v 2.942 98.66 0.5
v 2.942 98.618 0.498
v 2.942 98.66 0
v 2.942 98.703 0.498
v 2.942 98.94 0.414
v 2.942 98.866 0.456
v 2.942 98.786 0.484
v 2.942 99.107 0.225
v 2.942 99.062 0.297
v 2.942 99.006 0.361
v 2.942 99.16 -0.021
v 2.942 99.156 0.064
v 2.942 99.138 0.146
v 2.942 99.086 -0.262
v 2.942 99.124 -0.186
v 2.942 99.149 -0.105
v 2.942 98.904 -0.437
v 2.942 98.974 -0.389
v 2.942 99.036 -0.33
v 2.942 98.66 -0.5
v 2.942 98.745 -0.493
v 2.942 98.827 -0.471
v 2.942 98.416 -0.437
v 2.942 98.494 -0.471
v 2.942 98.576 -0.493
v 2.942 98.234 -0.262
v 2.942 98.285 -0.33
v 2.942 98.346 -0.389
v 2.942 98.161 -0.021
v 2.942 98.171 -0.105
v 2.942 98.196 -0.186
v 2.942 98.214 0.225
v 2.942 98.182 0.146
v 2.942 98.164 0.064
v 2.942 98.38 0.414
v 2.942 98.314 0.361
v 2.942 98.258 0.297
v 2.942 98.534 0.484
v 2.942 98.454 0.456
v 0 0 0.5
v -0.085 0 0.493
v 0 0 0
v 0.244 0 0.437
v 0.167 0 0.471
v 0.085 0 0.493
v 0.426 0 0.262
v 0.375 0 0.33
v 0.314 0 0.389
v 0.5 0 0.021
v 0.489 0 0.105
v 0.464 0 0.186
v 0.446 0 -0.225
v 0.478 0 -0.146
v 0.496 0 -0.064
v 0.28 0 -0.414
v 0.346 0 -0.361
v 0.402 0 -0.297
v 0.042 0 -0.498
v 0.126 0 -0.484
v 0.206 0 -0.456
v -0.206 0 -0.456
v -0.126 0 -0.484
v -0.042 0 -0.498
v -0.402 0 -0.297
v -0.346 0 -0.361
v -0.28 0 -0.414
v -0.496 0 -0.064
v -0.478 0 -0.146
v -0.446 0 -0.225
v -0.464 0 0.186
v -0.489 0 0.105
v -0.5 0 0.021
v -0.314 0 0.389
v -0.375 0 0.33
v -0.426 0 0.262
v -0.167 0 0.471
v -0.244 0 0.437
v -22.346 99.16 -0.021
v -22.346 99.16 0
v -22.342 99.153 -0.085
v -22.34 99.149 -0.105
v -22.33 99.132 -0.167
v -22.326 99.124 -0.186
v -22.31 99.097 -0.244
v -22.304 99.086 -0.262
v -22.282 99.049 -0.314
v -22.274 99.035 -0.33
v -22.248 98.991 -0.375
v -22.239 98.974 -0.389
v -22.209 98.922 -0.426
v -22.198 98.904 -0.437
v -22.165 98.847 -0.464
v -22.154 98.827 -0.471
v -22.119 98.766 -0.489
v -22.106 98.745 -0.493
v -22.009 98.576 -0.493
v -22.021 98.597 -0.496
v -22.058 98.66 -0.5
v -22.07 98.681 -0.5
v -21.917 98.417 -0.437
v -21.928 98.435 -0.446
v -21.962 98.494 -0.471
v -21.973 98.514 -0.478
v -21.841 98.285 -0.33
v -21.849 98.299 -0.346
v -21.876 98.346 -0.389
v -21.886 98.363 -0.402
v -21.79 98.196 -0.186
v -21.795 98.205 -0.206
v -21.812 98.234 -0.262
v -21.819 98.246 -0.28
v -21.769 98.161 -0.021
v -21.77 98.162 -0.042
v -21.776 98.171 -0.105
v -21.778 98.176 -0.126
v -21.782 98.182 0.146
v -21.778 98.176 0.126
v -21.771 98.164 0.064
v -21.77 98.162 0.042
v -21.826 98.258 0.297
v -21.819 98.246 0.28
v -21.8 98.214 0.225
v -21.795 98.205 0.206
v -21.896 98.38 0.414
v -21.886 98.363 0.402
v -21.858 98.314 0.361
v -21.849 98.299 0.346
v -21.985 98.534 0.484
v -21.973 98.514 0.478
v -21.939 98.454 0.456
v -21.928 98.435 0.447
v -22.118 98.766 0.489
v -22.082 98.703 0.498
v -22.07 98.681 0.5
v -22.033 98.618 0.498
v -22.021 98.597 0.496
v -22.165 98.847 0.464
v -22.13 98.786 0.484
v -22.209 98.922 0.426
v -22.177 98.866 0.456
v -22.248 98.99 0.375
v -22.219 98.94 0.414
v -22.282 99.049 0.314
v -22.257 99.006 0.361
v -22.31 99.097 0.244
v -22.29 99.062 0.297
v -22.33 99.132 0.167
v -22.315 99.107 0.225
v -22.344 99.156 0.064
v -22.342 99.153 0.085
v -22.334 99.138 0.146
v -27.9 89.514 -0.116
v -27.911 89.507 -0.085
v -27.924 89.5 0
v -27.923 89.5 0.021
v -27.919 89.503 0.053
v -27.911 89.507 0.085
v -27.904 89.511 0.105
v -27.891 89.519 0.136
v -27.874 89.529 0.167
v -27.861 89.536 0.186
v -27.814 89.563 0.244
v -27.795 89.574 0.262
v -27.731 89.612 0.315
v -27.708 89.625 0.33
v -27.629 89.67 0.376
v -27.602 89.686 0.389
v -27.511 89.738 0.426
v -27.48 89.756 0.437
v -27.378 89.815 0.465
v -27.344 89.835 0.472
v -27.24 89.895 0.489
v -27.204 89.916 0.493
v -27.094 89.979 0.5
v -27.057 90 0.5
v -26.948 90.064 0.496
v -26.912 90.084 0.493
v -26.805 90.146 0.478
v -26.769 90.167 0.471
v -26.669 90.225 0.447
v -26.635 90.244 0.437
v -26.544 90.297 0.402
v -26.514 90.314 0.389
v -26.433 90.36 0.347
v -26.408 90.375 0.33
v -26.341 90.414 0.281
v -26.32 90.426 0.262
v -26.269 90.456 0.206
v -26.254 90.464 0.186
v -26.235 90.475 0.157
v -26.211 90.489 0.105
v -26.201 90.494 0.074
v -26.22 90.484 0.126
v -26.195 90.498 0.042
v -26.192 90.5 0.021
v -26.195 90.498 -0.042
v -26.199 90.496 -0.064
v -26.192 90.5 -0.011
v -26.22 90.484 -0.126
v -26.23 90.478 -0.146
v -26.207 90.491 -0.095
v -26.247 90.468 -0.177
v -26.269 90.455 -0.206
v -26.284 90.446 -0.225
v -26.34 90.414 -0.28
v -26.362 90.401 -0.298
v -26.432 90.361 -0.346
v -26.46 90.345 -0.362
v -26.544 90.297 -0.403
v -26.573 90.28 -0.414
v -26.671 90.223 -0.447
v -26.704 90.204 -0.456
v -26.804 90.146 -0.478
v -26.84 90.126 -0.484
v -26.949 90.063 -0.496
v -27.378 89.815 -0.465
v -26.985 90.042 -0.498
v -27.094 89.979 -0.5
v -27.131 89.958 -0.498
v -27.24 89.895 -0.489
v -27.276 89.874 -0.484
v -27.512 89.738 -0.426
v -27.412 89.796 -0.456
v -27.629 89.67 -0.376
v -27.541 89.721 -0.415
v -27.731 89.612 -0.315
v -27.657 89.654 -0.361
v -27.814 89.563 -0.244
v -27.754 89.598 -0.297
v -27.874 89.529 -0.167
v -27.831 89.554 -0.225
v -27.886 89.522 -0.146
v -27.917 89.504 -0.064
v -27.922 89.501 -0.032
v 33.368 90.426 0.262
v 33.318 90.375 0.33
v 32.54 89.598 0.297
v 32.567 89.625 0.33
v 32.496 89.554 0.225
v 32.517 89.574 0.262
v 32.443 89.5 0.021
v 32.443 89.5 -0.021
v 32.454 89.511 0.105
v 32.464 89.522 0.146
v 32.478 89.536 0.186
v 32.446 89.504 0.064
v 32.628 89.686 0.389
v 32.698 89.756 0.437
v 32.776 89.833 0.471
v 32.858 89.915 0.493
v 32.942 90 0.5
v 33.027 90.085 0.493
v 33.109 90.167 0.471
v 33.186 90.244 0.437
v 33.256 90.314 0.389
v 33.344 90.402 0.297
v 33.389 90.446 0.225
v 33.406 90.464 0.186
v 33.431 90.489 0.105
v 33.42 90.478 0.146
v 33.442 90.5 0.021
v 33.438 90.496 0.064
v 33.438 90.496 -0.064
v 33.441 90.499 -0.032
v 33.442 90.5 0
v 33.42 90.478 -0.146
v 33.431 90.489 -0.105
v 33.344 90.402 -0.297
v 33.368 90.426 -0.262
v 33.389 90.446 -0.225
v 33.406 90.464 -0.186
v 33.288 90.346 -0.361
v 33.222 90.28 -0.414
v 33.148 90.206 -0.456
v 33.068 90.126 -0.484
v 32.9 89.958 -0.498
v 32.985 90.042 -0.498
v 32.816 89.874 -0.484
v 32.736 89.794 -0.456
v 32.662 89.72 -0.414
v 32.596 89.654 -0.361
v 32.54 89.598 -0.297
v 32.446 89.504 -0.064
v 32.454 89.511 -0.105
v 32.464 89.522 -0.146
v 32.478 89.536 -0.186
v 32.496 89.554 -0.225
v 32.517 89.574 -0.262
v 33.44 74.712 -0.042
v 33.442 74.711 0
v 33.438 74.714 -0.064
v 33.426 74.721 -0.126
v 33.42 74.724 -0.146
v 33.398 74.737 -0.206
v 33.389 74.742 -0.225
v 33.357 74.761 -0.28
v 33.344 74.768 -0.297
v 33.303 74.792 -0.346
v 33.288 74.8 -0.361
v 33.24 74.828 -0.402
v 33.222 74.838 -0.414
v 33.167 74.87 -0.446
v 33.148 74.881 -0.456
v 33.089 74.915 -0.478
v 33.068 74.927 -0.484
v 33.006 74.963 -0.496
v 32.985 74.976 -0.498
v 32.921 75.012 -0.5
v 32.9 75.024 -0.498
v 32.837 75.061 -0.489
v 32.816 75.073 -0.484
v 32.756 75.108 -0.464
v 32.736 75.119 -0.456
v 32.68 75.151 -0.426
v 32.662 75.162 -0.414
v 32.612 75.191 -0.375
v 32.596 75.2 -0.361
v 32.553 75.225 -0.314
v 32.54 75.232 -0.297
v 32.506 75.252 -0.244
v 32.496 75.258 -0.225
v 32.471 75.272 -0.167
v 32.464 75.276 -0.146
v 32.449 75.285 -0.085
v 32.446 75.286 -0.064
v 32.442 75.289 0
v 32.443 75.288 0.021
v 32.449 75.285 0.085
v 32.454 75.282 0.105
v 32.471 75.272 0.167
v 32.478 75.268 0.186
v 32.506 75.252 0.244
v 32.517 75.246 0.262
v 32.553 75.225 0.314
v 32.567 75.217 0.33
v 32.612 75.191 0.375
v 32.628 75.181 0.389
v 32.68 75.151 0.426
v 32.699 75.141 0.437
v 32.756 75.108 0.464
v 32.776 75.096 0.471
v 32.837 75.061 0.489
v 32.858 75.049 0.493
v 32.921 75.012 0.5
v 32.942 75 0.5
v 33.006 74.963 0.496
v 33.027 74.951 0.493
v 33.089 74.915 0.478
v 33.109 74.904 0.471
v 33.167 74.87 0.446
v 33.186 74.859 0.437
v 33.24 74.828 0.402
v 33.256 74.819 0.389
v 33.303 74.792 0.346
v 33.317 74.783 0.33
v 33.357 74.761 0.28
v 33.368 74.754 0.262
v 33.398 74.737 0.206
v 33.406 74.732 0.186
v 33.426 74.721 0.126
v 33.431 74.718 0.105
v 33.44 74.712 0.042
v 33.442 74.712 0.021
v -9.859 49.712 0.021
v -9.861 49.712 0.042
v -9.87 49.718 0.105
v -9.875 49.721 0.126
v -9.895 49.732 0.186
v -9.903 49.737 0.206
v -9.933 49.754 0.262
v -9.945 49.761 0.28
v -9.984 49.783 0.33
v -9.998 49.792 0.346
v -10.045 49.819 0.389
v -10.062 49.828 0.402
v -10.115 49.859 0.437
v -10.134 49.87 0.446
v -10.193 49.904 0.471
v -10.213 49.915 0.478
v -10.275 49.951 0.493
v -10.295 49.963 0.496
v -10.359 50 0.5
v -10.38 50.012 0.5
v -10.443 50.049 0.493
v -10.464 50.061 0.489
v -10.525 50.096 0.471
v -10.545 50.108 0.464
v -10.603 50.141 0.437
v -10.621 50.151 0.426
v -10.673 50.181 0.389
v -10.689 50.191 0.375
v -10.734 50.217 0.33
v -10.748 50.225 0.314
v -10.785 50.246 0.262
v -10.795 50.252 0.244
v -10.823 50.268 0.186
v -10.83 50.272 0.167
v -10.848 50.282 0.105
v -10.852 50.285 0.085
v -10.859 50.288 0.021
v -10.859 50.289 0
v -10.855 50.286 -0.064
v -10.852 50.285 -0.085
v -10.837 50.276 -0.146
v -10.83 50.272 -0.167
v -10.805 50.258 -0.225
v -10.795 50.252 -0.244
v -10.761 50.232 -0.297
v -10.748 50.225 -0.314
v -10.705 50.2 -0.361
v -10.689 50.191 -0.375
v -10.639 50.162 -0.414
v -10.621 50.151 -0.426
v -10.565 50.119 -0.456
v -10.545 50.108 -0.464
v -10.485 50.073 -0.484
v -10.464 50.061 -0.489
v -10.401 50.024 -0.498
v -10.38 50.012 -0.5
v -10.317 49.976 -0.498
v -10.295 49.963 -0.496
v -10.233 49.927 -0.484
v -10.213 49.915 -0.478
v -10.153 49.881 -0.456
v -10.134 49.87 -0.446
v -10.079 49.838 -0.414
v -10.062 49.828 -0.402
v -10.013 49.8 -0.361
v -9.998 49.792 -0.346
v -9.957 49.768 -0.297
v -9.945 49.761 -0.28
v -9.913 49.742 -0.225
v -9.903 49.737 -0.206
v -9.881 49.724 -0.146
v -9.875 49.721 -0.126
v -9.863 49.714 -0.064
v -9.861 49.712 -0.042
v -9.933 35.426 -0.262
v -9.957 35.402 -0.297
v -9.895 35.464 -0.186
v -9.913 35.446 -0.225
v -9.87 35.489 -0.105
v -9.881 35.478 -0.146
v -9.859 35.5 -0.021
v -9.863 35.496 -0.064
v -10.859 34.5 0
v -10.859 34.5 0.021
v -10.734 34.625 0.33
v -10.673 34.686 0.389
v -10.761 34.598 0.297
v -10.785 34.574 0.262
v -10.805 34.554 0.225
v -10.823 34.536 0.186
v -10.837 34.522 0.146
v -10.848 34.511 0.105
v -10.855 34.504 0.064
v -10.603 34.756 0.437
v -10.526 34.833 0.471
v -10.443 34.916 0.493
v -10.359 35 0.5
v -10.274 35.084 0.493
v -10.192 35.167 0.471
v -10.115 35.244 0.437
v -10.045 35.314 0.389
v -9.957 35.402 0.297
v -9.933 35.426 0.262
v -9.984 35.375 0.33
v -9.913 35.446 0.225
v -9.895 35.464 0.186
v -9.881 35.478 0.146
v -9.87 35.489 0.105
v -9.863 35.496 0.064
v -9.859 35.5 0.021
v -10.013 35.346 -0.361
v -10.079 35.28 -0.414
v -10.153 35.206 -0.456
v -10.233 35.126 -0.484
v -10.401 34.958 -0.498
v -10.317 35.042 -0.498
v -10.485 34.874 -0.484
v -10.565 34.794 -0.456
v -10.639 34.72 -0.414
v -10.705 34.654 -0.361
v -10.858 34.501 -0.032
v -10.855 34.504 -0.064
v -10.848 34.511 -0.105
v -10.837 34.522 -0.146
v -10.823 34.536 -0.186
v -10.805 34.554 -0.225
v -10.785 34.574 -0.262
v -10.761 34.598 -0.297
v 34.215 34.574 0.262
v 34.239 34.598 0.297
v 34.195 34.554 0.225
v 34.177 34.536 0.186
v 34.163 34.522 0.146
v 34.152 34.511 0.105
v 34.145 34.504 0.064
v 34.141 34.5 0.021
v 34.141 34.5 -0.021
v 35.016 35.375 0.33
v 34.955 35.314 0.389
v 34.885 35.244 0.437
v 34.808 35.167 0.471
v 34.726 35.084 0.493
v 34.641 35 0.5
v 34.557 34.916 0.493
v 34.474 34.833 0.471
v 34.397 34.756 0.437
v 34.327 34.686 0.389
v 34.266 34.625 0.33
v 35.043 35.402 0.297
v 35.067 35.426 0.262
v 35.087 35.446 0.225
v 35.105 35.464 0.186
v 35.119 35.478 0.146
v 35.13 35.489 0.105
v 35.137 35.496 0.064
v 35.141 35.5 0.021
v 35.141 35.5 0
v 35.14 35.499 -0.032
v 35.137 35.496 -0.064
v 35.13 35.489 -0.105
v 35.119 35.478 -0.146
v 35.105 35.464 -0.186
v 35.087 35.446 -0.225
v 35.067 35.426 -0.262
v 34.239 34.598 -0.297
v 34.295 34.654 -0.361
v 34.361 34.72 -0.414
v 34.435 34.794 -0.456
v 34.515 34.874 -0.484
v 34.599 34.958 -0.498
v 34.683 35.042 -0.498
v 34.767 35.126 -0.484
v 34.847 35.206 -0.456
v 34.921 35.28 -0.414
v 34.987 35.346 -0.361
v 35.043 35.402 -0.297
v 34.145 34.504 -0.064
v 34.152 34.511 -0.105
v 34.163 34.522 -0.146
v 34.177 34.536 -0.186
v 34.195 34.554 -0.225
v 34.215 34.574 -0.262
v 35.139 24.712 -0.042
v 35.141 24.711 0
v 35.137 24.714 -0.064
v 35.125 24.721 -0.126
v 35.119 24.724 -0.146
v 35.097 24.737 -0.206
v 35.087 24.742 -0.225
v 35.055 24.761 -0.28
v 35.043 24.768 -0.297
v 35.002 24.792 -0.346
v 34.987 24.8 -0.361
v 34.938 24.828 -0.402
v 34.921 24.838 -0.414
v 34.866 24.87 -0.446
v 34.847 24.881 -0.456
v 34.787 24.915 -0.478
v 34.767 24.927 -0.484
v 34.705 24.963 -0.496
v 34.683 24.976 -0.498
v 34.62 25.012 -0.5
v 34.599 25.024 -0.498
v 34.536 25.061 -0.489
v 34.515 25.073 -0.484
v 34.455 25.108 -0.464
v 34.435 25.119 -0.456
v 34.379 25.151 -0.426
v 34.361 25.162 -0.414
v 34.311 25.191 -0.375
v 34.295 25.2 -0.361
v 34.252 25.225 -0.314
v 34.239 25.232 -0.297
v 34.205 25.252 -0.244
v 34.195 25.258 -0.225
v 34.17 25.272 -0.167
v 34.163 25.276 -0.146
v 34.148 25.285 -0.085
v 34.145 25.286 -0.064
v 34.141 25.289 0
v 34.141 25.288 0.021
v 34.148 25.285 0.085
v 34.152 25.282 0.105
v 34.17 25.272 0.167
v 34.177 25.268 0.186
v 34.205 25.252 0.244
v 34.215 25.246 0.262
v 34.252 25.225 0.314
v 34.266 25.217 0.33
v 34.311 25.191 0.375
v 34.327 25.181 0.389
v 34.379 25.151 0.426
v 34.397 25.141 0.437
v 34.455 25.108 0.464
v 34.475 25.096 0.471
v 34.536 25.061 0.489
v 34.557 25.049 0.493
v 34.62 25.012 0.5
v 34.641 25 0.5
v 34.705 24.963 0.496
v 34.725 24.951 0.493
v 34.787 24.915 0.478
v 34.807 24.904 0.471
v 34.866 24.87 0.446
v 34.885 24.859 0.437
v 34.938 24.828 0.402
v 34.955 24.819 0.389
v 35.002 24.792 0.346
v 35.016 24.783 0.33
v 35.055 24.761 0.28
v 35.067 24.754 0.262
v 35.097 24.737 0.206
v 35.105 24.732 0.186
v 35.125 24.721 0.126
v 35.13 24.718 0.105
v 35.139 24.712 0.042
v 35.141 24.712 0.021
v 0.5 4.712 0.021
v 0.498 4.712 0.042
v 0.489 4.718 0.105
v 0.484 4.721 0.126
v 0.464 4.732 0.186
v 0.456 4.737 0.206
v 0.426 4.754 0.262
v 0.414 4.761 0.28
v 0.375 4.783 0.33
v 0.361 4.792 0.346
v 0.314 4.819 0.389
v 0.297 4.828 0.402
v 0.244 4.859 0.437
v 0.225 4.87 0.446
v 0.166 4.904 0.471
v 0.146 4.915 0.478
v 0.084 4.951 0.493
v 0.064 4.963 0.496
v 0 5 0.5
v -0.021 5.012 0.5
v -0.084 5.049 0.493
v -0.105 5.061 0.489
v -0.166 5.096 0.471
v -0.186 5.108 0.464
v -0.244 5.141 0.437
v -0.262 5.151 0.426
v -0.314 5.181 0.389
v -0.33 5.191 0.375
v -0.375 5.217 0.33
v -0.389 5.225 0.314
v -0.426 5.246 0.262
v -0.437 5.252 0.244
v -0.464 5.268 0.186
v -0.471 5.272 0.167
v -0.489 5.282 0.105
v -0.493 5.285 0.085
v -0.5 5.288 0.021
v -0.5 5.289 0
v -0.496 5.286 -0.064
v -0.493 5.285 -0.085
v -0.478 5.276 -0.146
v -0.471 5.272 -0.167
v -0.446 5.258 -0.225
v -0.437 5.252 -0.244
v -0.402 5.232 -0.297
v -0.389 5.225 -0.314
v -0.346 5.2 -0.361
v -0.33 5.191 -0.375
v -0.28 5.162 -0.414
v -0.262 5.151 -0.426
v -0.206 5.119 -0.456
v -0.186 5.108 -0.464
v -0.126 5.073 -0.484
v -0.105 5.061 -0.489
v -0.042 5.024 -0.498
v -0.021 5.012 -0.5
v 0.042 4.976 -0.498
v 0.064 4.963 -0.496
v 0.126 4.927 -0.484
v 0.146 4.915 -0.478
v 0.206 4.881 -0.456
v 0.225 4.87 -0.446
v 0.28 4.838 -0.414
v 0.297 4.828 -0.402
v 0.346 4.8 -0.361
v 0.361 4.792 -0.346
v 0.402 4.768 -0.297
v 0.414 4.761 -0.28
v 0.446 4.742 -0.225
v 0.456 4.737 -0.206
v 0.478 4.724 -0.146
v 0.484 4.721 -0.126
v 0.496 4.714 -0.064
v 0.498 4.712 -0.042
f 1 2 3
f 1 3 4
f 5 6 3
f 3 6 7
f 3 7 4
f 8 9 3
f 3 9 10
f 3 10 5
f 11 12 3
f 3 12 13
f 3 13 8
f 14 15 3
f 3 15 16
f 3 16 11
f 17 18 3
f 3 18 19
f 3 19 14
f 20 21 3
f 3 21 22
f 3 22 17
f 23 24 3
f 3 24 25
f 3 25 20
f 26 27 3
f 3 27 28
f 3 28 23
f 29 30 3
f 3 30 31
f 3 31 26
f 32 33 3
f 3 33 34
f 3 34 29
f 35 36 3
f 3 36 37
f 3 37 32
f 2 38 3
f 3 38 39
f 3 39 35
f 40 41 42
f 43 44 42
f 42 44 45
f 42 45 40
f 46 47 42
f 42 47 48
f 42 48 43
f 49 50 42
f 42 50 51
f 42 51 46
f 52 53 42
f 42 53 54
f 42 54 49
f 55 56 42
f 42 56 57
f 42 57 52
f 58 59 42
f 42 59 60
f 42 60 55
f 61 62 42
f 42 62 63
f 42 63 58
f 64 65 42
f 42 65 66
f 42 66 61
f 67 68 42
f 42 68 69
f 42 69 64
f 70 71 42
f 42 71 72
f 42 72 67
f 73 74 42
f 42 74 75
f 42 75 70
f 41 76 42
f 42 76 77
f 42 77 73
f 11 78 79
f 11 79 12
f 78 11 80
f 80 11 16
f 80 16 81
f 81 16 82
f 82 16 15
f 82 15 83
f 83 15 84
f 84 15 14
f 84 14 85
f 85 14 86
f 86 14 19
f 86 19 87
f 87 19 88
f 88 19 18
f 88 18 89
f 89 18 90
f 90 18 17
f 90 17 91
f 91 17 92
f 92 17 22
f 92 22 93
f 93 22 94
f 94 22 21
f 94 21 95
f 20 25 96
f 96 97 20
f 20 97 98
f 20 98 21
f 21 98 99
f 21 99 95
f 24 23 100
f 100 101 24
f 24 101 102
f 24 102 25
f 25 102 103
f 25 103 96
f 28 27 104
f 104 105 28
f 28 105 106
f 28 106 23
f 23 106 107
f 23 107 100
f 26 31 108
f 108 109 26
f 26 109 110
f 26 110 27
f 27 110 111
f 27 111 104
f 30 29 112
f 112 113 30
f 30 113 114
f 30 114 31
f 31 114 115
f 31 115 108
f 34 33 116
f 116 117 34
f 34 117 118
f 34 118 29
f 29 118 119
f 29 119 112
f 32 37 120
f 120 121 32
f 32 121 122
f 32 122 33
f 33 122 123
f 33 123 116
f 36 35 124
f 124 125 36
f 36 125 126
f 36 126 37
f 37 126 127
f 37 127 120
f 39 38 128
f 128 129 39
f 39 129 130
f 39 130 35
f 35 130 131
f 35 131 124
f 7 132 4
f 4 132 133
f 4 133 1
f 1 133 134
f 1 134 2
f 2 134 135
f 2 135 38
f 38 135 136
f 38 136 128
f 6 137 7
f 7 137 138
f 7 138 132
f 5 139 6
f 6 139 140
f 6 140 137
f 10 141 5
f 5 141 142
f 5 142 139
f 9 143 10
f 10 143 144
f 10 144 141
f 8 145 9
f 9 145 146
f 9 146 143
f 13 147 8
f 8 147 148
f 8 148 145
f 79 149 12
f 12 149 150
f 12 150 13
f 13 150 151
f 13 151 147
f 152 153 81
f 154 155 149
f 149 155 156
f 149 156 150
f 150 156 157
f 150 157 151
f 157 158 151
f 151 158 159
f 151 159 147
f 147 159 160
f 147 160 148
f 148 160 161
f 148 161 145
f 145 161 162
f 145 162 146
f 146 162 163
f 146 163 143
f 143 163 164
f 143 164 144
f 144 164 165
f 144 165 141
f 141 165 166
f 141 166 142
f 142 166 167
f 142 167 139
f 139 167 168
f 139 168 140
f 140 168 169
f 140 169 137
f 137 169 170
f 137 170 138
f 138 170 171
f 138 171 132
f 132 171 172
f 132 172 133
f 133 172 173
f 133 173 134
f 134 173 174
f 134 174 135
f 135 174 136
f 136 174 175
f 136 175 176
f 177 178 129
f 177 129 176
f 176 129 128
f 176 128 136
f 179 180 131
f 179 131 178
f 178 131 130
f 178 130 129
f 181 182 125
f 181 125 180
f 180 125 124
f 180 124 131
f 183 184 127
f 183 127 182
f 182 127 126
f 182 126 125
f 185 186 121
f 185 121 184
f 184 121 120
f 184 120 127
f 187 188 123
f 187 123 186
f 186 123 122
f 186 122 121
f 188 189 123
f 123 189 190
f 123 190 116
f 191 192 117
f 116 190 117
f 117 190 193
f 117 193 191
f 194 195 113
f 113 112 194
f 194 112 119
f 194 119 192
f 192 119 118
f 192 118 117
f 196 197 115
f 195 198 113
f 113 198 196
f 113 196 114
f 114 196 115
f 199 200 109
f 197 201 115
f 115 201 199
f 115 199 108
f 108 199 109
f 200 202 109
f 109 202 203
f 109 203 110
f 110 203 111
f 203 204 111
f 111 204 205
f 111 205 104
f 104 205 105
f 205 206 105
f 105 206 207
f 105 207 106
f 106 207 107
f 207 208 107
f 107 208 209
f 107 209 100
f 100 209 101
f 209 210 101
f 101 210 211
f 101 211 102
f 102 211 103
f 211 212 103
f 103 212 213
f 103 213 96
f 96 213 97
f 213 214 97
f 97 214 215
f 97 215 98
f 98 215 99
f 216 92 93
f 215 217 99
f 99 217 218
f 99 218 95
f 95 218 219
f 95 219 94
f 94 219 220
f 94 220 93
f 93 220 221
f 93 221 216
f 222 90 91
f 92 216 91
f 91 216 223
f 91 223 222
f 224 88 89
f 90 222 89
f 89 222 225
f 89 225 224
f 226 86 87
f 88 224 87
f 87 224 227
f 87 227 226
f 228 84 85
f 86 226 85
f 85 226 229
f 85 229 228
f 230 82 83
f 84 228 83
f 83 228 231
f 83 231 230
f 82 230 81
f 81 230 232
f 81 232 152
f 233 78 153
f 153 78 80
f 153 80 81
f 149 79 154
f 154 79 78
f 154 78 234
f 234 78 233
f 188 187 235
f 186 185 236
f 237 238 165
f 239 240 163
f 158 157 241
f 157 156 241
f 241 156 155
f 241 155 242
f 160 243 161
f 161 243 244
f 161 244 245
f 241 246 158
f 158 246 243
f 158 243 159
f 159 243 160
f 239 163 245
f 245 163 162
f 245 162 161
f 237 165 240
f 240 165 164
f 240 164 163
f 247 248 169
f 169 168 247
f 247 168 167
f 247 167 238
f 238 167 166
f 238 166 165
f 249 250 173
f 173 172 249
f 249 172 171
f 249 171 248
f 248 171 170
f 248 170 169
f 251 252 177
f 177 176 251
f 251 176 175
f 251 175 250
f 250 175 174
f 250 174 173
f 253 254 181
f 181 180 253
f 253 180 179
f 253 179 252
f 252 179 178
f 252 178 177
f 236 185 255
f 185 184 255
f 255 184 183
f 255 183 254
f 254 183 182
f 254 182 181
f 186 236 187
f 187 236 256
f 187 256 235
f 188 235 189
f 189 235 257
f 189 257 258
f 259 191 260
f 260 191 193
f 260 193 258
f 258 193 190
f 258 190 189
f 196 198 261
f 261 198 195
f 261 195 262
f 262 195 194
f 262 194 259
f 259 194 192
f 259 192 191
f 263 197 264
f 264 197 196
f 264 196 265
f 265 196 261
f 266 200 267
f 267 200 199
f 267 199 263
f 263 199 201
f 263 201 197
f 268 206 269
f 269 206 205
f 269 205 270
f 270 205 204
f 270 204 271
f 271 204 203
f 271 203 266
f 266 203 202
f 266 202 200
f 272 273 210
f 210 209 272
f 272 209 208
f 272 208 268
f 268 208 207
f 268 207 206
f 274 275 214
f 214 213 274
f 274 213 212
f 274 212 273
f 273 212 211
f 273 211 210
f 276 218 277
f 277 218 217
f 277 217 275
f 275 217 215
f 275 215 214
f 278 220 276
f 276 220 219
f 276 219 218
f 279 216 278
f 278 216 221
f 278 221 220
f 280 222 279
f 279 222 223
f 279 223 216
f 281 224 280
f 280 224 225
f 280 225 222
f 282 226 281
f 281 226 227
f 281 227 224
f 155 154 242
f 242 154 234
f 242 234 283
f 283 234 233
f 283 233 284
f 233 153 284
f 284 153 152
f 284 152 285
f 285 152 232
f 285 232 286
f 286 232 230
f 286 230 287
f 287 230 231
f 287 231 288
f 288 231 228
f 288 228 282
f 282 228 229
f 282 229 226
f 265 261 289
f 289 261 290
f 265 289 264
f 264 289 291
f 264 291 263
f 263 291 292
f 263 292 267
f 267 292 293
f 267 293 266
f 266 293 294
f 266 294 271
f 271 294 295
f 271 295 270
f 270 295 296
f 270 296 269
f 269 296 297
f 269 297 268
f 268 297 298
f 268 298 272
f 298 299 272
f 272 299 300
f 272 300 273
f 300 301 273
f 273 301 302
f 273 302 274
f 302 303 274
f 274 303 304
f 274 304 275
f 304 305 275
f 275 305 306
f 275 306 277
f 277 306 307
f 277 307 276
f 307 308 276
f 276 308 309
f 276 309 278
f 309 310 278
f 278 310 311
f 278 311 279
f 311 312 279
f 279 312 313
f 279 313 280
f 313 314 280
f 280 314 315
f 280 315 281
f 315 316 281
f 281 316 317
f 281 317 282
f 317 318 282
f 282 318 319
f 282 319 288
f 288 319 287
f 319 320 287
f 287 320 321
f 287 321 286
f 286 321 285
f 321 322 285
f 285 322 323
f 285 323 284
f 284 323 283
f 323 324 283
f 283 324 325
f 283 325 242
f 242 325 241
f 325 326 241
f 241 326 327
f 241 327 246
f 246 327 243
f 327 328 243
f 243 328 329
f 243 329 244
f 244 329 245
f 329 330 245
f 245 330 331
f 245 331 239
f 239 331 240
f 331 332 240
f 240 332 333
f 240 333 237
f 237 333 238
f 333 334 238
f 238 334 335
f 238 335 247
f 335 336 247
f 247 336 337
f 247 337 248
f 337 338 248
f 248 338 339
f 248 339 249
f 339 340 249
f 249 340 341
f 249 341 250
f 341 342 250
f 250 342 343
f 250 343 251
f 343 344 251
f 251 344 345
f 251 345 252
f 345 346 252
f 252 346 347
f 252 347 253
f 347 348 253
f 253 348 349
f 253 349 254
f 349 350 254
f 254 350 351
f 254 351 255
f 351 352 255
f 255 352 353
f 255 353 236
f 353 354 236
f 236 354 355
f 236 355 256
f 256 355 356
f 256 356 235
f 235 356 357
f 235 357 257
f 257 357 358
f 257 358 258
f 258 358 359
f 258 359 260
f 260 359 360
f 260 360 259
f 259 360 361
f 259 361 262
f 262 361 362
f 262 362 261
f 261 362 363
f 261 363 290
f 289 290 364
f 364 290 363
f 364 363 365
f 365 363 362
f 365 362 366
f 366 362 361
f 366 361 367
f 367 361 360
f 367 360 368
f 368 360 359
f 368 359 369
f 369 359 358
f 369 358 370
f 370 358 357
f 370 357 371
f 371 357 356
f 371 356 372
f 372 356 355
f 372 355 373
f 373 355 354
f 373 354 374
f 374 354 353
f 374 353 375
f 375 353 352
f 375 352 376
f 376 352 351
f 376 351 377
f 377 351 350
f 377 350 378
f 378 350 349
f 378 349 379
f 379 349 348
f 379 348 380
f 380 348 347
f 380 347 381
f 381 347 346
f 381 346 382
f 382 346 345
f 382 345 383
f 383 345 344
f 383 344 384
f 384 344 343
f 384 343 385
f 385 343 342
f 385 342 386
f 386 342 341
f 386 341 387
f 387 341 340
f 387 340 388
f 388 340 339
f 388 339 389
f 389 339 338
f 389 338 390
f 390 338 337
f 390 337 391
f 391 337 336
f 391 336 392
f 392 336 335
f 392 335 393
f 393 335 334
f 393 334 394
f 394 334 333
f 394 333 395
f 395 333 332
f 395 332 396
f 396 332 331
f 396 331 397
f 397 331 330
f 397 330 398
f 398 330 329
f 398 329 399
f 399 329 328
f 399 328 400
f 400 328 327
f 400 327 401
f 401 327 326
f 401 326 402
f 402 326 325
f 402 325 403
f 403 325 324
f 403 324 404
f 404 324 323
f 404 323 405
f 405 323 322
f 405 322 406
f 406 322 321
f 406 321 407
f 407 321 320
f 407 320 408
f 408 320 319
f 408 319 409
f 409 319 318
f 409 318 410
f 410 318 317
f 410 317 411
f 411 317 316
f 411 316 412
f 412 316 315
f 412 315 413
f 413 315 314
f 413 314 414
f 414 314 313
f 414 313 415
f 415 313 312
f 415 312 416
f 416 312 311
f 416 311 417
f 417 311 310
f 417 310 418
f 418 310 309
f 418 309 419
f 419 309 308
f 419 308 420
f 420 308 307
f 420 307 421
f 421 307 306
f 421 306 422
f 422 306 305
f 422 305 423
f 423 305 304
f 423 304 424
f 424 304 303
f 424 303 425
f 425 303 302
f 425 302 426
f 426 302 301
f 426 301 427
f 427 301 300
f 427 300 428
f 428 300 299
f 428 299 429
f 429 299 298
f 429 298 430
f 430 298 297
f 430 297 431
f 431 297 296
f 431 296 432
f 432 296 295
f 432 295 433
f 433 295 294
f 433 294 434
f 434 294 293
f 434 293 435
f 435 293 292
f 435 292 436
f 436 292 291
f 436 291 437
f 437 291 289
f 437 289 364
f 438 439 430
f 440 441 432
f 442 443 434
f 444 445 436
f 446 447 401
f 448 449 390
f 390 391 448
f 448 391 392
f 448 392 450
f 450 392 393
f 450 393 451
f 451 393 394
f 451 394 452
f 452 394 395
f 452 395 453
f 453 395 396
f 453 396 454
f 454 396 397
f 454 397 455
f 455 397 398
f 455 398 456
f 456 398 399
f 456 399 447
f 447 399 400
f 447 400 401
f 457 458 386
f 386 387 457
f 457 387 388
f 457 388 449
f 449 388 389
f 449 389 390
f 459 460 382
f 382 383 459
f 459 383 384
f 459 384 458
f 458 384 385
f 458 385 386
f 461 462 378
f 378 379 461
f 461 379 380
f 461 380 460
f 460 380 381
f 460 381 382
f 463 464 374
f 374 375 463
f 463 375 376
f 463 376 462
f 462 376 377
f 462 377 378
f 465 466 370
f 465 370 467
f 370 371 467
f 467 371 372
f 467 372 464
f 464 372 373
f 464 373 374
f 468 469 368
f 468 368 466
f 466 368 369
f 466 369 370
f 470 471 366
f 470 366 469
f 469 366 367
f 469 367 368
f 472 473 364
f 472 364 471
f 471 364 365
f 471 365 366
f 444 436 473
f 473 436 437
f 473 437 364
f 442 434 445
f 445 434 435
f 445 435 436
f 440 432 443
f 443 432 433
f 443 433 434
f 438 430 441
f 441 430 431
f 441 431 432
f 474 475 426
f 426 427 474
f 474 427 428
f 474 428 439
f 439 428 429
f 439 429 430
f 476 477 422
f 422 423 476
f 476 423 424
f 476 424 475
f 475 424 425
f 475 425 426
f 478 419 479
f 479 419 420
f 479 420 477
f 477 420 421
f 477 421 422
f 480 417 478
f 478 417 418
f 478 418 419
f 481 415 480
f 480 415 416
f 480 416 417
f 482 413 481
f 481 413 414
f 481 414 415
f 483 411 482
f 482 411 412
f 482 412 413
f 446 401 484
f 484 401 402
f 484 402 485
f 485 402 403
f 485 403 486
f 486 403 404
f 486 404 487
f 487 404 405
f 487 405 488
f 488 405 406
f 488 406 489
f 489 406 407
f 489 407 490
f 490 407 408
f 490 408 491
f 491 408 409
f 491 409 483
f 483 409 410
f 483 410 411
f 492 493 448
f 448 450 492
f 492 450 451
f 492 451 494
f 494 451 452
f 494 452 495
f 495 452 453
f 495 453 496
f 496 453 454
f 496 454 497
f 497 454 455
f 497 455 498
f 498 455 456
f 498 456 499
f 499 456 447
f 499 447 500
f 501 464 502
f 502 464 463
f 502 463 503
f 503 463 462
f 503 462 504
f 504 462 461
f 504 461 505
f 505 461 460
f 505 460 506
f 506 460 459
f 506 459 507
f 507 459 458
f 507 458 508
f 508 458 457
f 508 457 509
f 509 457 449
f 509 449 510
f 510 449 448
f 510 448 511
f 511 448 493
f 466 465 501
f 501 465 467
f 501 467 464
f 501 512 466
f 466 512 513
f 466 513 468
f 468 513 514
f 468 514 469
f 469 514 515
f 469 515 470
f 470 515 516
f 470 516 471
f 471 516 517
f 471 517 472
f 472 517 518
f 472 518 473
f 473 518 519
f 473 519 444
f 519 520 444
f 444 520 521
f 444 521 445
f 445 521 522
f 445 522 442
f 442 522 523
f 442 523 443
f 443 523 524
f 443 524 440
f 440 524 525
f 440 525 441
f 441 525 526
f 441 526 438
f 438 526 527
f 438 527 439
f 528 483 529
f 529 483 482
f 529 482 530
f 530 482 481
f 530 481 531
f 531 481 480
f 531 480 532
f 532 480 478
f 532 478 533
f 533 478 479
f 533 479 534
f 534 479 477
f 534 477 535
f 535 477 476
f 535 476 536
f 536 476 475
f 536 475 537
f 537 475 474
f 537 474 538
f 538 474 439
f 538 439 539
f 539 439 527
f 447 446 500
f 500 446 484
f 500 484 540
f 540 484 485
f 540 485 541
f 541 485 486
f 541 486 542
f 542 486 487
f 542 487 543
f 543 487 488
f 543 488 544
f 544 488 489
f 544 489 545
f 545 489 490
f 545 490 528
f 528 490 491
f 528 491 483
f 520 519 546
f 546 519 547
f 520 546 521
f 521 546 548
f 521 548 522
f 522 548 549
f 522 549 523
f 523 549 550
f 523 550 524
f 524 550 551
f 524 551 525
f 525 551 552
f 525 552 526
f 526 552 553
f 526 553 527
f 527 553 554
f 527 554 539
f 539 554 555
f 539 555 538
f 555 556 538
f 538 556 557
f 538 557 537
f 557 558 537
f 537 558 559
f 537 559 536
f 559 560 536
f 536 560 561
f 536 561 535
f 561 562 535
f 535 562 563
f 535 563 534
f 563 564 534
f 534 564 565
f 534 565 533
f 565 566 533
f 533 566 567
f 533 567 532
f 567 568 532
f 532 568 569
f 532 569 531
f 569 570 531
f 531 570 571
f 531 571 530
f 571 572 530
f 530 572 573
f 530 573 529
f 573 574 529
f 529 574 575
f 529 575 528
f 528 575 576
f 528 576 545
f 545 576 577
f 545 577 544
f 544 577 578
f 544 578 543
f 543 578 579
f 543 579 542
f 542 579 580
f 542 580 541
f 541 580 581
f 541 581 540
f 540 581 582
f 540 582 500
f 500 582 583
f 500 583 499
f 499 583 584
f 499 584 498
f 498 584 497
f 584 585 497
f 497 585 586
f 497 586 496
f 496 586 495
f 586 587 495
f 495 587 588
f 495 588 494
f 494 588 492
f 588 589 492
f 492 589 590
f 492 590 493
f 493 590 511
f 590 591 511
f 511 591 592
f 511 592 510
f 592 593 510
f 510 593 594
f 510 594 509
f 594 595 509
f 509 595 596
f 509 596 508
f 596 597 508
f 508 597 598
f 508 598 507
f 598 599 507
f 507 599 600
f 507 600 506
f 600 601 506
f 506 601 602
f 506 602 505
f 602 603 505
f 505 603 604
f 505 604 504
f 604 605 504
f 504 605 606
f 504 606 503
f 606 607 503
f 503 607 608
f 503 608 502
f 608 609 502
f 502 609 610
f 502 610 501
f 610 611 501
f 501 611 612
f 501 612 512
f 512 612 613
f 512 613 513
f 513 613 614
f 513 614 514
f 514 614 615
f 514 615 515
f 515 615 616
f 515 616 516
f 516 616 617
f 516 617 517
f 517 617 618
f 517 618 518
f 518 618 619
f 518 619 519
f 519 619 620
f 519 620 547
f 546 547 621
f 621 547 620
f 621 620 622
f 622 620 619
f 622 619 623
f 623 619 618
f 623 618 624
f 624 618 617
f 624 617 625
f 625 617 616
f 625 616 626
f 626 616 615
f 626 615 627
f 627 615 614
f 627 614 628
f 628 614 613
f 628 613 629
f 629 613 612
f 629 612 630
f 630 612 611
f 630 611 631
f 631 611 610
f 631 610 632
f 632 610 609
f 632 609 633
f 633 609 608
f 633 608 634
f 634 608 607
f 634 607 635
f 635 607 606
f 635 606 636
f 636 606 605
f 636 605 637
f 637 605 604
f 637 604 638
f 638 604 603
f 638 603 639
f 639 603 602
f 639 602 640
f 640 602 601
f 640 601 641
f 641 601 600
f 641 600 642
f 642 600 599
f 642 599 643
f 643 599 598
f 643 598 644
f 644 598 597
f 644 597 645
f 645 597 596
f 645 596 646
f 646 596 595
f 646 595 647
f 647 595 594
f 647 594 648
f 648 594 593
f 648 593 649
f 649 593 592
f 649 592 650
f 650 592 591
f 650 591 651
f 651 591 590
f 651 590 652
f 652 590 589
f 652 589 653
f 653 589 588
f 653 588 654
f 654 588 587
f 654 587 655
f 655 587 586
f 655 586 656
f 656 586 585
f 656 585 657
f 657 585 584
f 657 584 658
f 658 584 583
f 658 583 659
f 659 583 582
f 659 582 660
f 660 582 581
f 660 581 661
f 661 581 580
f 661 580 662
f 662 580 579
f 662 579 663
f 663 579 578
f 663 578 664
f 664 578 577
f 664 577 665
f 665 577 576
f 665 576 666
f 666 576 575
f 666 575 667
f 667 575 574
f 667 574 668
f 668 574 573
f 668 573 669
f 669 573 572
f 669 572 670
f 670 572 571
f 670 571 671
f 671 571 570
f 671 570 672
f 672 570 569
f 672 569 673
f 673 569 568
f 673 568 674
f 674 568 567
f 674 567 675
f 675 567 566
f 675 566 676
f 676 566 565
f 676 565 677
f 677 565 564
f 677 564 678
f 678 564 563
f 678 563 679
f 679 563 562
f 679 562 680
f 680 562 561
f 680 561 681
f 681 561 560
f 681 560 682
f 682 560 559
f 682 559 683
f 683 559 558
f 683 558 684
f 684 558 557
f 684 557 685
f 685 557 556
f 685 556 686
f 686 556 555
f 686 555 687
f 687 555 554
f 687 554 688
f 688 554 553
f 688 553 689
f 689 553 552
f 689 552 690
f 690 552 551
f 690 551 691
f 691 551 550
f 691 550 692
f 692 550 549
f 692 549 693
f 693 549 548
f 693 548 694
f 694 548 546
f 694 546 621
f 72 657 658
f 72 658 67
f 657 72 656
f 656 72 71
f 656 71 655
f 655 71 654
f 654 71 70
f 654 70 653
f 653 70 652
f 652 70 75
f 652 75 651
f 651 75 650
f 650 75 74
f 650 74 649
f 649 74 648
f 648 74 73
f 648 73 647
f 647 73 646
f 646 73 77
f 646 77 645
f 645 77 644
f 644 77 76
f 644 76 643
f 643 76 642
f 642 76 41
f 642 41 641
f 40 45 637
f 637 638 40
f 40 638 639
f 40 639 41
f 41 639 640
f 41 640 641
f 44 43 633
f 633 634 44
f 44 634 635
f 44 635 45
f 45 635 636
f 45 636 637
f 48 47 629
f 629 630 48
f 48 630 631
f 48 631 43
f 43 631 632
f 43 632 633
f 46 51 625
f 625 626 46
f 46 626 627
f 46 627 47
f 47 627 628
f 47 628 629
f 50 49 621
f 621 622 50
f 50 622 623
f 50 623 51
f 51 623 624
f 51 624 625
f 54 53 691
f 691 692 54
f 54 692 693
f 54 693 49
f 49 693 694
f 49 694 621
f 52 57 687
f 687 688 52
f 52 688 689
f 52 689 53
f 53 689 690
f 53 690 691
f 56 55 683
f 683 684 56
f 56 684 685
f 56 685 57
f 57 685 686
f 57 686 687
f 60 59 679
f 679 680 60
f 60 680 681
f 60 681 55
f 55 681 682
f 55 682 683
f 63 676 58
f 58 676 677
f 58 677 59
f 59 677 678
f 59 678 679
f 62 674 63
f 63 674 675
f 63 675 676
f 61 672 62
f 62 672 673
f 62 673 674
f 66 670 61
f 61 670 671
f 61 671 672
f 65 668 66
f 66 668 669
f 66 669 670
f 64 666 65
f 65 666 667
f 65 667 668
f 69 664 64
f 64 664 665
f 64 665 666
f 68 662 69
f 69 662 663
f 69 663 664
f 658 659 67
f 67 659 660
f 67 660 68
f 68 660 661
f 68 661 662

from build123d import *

# Parameters (mm, degrees)
SWEEP1_PROFILE_R = 0.5


with BuildPart() as part:
    # Sweep1: sweep along a path in Schizzo39
    with BuildLine(Plane.XY) as sweep1_path:
        Line((0, 0), (0, 5))
        Line((0, 5), (34.641016151, 25))
        Line((34.641016151, 25), (34.641016151, 35))
        Line((34.641016151, 35), (-10.358983849, 35))
        Line((-10.358983849, 35), (-10.358983849, 50))
        Line((-10.358983849, 50), (32.942286341, 75))
        Line((32.942286341, 75), (32.942286341, 90))
        Line((32.942286341, 90), (-27.057713659, 90))
        Line((-27.057713659, 90), (-22.057713659, 98.660254038))
        Line((-22.057713659, 98.660254038), (2.942286341, 98.660254038))
    # Sweep1 profile (on start of the path) → Sweep1 (sweep)
    with BuildSketch(Plane.ZX):
        Circle(SWEEP1_PROFILE_R)
    sweep(path=sweep1_path.line, transition=Transition.RIGHT)


solid = part.part
